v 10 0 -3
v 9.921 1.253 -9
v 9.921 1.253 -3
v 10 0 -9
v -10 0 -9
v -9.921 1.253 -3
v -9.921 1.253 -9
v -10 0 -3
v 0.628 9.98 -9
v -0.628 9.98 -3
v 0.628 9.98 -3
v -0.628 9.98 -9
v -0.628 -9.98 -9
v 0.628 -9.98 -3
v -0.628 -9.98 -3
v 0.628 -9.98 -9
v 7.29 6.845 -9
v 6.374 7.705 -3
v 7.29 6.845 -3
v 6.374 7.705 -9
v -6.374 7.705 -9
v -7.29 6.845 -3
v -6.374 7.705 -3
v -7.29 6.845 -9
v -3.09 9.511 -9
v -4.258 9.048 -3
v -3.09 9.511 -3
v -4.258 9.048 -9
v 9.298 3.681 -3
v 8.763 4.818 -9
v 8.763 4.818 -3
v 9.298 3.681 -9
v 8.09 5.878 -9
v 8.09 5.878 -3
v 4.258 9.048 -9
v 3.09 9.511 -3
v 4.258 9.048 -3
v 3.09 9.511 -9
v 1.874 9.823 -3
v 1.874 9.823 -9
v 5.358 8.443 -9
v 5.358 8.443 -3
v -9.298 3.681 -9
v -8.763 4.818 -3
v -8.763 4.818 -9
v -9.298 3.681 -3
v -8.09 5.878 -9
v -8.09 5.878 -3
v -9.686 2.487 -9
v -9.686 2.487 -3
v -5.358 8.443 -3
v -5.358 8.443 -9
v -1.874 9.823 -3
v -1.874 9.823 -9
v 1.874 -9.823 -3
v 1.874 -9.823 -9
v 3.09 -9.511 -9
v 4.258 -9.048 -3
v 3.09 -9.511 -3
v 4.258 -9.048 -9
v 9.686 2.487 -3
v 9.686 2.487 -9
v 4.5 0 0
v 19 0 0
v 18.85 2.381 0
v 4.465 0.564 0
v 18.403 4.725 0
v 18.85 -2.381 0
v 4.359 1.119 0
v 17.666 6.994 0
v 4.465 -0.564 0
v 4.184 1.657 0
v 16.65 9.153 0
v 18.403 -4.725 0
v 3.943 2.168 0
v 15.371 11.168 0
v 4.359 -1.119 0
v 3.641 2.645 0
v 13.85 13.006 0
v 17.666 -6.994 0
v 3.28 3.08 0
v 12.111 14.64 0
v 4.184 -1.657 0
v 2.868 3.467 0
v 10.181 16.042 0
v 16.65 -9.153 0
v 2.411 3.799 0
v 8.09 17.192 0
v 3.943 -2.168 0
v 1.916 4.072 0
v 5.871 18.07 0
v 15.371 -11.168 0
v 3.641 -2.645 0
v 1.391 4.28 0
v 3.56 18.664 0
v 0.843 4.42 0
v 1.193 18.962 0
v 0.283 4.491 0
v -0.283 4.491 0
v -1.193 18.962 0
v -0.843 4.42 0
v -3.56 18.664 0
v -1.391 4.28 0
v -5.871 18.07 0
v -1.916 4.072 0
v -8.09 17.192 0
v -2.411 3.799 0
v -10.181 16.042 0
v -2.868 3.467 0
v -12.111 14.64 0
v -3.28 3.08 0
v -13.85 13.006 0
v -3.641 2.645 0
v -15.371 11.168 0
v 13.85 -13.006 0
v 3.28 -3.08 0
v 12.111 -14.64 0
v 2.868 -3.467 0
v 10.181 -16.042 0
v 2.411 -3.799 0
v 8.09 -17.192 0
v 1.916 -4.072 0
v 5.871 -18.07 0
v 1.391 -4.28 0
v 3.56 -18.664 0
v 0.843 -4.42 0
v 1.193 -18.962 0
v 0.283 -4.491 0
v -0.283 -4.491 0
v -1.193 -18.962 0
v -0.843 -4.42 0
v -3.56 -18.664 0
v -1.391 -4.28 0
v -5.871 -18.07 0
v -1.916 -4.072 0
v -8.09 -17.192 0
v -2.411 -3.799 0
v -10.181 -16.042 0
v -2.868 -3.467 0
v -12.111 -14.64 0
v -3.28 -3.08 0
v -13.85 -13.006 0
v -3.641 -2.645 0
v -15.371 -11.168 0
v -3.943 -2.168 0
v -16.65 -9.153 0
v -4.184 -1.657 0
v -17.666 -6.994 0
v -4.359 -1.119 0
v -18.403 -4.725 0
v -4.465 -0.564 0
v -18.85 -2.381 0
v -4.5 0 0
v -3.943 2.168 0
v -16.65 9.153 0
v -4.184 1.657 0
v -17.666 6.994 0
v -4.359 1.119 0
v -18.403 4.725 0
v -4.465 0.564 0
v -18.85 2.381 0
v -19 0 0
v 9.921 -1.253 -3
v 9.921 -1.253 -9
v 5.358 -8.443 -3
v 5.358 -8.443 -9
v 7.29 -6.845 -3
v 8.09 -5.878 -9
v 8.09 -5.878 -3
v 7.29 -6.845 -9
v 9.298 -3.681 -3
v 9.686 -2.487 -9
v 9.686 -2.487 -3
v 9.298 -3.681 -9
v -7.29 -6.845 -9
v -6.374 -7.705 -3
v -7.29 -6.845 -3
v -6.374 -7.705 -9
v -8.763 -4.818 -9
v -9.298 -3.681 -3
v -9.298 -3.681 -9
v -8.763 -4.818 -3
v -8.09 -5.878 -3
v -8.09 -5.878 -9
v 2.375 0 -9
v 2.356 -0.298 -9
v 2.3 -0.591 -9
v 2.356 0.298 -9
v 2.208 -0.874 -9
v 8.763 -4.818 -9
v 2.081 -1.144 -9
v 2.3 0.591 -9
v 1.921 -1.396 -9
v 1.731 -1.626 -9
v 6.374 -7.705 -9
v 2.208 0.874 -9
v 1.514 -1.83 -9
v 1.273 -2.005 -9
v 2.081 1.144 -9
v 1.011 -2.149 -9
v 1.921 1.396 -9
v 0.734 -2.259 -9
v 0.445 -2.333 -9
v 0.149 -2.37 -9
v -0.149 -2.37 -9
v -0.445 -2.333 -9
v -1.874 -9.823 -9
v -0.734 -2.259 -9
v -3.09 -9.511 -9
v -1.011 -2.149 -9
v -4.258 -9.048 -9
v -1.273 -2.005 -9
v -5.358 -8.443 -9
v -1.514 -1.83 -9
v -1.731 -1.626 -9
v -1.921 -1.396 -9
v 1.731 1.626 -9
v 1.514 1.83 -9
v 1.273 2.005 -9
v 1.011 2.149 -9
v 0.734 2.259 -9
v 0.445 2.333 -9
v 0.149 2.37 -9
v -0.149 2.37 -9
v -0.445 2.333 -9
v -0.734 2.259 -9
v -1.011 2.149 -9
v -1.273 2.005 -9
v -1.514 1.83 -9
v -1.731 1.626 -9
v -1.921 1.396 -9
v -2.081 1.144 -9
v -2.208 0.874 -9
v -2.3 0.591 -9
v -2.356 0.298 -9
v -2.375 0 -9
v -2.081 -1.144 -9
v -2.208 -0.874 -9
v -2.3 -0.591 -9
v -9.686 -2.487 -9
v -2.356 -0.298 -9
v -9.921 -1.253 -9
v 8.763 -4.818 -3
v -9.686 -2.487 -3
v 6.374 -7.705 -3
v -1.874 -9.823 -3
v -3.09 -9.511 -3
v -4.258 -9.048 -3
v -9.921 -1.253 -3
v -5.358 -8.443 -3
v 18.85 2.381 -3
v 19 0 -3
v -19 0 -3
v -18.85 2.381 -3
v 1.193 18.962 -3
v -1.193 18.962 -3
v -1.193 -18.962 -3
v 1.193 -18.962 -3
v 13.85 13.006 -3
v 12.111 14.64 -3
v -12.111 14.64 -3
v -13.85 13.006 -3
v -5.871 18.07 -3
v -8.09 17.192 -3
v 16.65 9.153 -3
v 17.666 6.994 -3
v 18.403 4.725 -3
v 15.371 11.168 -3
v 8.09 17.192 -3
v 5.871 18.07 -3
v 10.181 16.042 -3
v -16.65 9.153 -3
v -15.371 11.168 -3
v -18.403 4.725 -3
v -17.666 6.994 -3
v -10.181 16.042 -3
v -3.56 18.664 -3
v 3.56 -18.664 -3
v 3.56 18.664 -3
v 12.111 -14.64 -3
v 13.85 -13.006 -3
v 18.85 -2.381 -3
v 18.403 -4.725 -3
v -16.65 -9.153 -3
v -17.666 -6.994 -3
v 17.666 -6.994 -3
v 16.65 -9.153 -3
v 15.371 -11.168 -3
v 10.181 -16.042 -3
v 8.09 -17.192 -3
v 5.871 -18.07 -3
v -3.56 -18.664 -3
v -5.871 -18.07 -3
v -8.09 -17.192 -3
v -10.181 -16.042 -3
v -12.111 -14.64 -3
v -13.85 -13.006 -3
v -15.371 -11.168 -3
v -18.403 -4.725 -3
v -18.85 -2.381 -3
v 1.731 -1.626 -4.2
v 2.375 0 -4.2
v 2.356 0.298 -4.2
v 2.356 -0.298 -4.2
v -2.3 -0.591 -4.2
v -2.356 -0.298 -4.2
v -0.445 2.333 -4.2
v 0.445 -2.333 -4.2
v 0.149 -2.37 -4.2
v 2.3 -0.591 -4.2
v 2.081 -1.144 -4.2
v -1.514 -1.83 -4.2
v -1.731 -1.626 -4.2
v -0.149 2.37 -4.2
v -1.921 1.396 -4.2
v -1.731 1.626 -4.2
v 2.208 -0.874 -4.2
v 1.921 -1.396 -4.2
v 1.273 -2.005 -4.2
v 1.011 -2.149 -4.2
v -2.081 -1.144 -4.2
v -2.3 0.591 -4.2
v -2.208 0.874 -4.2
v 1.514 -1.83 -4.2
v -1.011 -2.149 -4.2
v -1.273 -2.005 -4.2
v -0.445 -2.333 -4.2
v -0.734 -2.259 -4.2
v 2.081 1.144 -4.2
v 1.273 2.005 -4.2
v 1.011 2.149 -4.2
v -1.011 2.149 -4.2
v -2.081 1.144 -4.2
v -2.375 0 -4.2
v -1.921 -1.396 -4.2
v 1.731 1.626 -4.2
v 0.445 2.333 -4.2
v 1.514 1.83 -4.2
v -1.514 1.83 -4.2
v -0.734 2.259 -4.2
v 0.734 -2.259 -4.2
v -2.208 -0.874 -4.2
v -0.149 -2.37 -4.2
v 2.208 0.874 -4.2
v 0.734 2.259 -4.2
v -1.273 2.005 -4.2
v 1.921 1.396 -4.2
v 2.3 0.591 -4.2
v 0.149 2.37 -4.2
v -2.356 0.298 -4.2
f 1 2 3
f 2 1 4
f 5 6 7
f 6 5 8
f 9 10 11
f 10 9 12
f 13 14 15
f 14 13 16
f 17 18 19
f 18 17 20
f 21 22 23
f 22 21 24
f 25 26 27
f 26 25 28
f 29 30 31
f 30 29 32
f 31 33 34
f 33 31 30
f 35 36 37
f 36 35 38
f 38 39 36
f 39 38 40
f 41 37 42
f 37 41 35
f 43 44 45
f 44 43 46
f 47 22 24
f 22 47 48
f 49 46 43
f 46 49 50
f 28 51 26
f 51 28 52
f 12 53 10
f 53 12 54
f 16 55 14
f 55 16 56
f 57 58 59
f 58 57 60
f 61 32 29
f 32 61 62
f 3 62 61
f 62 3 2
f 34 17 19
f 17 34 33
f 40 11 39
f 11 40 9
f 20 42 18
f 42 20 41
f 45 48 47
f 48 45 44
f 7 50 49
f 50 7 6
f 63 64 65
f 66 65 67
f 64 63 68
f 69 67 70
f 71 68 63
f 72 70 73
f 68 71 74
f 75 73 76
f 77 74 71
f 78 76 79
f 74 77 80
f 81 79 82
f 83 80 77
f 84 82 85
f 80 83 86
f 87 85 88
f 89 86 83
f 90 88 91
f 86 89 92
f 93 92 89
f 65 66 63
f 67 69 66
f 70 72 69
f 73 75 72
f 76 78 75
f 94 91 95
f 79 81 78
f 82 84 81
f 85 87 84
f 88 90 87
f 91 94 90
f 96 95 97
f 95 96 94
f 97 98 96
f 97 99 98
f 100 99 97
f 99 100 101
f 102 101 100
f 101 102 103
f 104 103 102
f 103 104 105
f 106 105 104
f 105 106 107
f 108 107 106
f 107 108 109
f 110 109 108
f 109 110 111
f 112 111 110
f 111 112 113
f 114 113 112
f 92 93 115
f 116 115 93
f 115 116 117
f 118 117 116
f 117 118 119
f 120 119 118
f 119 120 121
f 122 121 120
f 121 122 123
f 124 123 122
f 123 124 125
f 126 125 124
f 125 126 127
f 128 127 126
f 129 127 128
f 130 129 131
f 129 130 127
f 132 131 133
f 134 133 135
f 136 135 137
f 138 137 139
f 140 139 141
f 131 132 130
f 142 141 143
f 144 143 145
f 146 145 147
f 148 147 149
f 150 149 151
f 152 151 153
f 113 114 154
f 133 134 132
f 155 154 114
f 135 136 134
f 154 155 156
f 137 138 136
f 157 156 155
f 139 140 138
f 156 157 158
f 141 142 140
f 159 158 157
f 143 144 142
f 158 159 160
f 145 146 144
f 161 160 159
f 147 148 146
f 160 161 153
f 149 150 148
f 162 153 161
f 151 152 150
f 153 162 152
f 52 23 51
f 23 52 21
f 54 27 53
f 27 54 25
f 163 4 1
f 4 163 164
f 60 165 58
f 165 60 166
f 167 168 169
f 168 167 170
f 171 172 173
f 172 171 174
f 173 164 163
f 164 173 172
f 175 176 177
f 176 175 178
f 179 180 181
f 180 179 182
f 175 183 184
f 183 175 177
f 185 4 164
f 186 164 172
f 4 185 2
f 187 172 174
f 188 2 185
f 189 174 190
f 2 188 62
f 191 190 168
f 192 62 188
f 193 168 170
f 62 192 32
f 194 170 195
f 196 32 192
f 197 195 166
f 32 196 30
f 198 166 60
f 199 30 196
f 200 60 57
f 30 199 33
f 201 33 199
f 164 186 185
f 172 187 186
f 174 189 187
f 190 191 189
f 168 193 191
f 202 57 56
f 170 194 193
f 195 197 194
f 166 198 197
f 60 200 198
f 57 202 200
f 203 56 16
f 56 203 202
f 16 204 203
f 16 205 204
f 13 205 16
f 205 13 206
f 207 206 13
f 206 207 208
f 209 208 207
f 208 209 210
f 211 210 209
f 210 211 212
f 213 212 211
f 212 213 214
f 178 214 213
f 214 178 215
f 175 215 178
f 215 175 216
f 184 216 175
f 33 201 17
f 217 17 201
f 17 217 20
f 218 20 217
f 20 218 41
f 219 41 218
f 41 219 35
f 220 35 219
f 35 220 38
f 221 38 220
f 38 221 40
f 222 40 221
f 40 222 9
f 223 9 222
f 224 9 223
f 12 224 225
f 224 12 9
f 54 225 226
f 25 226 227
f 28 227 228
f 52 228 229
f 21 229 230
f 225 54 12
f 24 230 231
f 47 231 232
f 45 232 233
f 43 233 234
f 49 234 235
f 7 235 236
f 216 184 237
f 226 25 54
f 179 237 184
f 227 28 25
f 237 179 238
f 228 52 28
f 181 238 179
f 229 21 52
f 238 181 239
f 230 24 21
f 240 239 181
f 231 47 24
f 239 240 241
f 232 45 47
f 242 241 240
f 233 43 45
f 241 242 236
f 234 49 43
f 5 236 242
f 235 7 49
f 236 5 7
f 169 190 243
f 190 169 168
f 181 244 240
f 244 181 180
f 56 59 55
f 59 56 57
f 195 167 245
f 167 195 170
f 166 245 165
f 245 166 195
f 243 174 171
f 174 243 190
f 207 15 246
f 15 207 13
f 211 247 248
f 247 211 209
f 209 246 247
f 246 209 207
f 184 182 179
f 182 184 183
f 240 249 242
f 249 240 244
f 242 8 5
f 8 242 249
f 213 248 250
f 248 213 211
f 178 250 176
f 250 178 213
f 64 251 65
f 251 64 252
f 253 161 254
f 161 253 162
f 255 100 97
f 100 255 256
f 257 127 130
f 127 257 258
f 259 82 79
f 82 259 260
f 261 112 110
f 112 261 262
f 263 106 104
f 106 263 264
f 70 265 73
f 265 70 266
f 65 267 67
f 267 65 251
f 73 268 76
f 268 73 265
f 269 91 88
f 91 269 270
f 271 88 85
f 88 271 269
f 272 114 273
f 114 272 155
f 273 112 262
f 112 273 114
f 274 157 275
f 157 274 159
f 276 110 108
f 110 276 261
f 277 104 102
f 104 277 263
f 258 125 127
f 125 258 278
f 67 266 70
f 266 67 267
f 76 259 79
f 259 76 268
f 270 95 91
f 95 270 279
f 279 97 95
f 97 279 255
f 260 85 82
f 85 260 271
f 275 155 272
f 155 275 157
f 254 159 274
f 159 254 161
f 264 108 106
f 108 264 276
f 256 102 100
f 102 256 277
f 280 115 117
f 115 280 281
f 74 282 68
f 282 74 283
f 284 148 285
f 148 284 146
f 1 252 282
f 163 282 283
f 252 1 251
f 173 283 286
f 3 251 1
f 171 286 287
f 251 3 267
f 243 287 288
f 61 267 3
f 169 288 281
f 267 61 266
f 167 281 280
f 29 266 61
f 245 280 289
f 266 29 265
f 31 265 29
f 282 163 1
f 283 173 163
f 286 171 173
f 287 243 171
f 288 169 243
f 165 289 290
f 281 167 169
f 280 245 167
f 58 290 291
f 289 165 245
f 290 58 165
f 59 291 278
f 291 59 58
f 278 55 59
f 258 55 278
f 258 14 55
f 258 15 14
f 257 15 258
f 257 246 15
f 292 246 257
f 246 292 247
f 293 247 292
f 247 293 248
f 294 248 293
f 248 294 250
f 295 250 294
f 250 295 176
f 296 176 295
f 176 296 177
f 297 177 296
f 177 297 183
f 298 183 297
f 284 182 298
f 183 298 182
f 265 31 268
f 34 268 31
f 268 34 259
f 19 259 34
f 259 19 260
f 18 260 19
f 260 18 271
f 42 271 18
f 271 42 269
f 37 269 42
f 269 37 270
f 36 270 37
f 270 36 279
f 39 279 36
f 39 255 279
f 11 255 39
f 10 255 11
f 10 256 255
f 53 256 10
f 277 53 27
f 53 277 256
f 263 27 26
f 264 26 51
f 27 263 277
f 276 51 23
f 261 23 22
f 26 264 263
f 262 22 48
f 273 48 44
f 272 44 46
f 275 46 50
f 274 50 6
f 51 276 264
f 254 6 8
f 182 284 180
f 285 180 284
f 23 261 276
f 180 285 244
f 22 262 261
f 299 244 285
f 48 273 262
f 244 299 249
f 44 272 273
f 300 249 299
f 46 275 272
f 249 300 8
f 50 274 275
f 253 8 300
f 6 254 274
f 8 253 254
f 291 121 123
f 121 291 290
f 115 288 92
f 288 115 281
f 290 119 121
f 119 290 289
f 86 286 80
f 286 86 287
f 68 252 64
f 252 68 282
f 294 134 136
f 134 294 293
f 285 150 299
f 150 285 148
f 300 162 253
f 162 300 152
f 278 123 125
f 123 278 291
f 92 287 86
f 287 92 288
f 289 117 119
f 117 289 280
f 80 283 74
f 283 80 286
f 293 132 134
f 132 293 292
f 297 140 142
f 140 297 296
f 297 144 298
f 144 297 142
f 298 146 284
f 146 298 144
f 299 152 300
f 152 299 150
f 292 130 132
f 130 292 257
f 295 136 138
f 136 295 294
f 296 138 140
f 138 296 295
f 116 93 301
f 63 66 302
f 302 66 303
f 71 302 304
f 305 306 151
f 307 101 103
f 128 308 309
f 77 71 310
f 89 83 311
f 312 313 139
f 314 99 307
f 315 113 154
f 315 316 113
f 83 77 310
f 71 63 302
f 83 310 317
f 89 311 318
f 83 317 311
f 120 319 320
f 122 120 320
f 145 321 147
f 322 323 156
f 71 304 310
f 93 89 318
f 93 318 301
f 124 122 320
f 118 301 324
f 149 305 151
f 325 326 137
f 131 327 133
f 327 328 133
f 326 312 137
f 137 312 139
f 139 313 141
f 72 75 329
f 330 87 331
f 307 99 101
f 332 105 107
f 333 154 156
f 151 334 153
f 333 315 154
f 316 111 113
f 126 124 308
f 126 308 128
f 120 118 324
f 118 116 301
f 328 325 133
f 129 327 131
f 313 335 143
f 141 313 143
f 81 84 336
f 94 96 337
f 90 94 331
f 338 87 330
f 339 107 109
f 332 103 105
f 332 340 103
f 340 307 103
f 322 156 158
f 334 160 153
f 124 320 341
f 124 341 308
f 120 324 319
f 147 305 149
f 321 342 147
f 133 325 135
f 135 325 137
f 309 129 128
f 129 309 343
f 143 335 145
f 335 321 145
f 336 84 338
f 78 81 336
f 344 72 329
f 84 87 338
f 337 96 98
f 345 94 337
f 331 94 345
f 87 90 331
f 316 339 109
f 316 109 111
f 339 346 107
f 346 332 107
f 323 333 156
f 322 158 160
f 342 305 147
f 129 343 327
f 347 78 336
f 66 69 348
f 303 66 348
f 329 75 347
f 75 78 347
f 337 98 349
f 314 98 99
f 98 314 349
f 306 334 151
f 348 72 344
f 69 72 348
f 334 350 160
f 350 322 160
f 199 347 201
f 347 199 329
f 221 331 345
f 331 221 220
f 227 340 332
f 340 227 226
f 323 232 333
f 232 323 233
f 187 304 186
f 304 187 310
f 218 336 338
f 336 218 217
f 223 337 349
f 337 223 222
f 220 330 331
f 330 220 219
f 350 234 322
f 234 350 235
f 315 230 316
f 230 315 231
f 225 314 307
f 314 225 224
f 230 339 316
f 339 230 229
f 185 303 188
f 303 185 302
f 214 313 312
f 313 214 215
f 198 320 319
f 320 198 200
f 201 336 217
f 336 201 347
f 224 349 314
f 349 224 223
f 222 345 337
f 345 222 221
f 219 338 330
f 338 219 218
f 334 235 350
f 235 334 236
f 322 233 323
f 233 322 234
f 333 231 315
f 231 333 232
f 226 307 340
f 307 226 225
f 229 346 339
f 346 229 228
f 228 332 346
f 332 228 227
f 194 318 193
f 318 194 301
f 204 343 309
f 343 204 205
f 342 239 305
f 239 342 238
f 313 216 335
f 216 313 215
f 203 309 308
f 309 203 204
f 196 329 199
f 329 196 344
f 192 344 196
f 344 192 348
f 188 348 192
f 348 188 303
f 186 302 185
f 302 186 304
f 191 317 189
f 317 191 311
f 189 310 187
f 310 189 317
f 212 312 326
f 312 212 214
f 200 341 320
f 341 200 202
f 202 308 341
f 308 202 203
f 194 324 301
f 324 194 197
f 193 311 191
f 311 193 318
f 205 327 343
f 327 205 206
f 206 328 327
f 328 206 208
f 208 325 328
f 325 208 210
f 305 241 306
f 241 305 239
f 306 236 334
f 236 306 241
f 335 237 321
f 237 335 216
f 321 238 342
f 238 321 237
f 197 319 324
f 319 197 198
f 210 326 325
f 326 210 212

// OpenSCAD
$fn = 50;


difference() {
	union() {
		translate(v = [0, 0, -9.0000000000]) {
			cylinder(h = 9, r = 10.0000000000);
		}
		translate(v = [0, 0, -3.0000000000]) {
			cylinder(h = 3, r = 19.0000000000);
		}
	}
	union() {
		translate(v = [0, 0, 0]) {
			rotate(a = [0, 0, 0]) {
				difference() {
					union() {
						#translate(v = [0, 0, -9.0000000000]) {
							cylinder(h = 9, r = 2.2500000000);
						}
						#translate(v = [0, 0, -4.2000000000]) {
							cylinder(h = 4.2000000000, r = 10.0000000000, r1 = 2.3750000000, r2 = 4.5000000000);
						}
						#translate(v = [0, 0, -9.0000000000]) {
							cylinder(h = 9, r = 2.3750000000);
						}
						#translate(v = [0, 0, -9.0000000000]) {
							cylinder(h = 9, r = 2.2500000000);
						}
					}
					union();
				}
			}
		}
	}
}
